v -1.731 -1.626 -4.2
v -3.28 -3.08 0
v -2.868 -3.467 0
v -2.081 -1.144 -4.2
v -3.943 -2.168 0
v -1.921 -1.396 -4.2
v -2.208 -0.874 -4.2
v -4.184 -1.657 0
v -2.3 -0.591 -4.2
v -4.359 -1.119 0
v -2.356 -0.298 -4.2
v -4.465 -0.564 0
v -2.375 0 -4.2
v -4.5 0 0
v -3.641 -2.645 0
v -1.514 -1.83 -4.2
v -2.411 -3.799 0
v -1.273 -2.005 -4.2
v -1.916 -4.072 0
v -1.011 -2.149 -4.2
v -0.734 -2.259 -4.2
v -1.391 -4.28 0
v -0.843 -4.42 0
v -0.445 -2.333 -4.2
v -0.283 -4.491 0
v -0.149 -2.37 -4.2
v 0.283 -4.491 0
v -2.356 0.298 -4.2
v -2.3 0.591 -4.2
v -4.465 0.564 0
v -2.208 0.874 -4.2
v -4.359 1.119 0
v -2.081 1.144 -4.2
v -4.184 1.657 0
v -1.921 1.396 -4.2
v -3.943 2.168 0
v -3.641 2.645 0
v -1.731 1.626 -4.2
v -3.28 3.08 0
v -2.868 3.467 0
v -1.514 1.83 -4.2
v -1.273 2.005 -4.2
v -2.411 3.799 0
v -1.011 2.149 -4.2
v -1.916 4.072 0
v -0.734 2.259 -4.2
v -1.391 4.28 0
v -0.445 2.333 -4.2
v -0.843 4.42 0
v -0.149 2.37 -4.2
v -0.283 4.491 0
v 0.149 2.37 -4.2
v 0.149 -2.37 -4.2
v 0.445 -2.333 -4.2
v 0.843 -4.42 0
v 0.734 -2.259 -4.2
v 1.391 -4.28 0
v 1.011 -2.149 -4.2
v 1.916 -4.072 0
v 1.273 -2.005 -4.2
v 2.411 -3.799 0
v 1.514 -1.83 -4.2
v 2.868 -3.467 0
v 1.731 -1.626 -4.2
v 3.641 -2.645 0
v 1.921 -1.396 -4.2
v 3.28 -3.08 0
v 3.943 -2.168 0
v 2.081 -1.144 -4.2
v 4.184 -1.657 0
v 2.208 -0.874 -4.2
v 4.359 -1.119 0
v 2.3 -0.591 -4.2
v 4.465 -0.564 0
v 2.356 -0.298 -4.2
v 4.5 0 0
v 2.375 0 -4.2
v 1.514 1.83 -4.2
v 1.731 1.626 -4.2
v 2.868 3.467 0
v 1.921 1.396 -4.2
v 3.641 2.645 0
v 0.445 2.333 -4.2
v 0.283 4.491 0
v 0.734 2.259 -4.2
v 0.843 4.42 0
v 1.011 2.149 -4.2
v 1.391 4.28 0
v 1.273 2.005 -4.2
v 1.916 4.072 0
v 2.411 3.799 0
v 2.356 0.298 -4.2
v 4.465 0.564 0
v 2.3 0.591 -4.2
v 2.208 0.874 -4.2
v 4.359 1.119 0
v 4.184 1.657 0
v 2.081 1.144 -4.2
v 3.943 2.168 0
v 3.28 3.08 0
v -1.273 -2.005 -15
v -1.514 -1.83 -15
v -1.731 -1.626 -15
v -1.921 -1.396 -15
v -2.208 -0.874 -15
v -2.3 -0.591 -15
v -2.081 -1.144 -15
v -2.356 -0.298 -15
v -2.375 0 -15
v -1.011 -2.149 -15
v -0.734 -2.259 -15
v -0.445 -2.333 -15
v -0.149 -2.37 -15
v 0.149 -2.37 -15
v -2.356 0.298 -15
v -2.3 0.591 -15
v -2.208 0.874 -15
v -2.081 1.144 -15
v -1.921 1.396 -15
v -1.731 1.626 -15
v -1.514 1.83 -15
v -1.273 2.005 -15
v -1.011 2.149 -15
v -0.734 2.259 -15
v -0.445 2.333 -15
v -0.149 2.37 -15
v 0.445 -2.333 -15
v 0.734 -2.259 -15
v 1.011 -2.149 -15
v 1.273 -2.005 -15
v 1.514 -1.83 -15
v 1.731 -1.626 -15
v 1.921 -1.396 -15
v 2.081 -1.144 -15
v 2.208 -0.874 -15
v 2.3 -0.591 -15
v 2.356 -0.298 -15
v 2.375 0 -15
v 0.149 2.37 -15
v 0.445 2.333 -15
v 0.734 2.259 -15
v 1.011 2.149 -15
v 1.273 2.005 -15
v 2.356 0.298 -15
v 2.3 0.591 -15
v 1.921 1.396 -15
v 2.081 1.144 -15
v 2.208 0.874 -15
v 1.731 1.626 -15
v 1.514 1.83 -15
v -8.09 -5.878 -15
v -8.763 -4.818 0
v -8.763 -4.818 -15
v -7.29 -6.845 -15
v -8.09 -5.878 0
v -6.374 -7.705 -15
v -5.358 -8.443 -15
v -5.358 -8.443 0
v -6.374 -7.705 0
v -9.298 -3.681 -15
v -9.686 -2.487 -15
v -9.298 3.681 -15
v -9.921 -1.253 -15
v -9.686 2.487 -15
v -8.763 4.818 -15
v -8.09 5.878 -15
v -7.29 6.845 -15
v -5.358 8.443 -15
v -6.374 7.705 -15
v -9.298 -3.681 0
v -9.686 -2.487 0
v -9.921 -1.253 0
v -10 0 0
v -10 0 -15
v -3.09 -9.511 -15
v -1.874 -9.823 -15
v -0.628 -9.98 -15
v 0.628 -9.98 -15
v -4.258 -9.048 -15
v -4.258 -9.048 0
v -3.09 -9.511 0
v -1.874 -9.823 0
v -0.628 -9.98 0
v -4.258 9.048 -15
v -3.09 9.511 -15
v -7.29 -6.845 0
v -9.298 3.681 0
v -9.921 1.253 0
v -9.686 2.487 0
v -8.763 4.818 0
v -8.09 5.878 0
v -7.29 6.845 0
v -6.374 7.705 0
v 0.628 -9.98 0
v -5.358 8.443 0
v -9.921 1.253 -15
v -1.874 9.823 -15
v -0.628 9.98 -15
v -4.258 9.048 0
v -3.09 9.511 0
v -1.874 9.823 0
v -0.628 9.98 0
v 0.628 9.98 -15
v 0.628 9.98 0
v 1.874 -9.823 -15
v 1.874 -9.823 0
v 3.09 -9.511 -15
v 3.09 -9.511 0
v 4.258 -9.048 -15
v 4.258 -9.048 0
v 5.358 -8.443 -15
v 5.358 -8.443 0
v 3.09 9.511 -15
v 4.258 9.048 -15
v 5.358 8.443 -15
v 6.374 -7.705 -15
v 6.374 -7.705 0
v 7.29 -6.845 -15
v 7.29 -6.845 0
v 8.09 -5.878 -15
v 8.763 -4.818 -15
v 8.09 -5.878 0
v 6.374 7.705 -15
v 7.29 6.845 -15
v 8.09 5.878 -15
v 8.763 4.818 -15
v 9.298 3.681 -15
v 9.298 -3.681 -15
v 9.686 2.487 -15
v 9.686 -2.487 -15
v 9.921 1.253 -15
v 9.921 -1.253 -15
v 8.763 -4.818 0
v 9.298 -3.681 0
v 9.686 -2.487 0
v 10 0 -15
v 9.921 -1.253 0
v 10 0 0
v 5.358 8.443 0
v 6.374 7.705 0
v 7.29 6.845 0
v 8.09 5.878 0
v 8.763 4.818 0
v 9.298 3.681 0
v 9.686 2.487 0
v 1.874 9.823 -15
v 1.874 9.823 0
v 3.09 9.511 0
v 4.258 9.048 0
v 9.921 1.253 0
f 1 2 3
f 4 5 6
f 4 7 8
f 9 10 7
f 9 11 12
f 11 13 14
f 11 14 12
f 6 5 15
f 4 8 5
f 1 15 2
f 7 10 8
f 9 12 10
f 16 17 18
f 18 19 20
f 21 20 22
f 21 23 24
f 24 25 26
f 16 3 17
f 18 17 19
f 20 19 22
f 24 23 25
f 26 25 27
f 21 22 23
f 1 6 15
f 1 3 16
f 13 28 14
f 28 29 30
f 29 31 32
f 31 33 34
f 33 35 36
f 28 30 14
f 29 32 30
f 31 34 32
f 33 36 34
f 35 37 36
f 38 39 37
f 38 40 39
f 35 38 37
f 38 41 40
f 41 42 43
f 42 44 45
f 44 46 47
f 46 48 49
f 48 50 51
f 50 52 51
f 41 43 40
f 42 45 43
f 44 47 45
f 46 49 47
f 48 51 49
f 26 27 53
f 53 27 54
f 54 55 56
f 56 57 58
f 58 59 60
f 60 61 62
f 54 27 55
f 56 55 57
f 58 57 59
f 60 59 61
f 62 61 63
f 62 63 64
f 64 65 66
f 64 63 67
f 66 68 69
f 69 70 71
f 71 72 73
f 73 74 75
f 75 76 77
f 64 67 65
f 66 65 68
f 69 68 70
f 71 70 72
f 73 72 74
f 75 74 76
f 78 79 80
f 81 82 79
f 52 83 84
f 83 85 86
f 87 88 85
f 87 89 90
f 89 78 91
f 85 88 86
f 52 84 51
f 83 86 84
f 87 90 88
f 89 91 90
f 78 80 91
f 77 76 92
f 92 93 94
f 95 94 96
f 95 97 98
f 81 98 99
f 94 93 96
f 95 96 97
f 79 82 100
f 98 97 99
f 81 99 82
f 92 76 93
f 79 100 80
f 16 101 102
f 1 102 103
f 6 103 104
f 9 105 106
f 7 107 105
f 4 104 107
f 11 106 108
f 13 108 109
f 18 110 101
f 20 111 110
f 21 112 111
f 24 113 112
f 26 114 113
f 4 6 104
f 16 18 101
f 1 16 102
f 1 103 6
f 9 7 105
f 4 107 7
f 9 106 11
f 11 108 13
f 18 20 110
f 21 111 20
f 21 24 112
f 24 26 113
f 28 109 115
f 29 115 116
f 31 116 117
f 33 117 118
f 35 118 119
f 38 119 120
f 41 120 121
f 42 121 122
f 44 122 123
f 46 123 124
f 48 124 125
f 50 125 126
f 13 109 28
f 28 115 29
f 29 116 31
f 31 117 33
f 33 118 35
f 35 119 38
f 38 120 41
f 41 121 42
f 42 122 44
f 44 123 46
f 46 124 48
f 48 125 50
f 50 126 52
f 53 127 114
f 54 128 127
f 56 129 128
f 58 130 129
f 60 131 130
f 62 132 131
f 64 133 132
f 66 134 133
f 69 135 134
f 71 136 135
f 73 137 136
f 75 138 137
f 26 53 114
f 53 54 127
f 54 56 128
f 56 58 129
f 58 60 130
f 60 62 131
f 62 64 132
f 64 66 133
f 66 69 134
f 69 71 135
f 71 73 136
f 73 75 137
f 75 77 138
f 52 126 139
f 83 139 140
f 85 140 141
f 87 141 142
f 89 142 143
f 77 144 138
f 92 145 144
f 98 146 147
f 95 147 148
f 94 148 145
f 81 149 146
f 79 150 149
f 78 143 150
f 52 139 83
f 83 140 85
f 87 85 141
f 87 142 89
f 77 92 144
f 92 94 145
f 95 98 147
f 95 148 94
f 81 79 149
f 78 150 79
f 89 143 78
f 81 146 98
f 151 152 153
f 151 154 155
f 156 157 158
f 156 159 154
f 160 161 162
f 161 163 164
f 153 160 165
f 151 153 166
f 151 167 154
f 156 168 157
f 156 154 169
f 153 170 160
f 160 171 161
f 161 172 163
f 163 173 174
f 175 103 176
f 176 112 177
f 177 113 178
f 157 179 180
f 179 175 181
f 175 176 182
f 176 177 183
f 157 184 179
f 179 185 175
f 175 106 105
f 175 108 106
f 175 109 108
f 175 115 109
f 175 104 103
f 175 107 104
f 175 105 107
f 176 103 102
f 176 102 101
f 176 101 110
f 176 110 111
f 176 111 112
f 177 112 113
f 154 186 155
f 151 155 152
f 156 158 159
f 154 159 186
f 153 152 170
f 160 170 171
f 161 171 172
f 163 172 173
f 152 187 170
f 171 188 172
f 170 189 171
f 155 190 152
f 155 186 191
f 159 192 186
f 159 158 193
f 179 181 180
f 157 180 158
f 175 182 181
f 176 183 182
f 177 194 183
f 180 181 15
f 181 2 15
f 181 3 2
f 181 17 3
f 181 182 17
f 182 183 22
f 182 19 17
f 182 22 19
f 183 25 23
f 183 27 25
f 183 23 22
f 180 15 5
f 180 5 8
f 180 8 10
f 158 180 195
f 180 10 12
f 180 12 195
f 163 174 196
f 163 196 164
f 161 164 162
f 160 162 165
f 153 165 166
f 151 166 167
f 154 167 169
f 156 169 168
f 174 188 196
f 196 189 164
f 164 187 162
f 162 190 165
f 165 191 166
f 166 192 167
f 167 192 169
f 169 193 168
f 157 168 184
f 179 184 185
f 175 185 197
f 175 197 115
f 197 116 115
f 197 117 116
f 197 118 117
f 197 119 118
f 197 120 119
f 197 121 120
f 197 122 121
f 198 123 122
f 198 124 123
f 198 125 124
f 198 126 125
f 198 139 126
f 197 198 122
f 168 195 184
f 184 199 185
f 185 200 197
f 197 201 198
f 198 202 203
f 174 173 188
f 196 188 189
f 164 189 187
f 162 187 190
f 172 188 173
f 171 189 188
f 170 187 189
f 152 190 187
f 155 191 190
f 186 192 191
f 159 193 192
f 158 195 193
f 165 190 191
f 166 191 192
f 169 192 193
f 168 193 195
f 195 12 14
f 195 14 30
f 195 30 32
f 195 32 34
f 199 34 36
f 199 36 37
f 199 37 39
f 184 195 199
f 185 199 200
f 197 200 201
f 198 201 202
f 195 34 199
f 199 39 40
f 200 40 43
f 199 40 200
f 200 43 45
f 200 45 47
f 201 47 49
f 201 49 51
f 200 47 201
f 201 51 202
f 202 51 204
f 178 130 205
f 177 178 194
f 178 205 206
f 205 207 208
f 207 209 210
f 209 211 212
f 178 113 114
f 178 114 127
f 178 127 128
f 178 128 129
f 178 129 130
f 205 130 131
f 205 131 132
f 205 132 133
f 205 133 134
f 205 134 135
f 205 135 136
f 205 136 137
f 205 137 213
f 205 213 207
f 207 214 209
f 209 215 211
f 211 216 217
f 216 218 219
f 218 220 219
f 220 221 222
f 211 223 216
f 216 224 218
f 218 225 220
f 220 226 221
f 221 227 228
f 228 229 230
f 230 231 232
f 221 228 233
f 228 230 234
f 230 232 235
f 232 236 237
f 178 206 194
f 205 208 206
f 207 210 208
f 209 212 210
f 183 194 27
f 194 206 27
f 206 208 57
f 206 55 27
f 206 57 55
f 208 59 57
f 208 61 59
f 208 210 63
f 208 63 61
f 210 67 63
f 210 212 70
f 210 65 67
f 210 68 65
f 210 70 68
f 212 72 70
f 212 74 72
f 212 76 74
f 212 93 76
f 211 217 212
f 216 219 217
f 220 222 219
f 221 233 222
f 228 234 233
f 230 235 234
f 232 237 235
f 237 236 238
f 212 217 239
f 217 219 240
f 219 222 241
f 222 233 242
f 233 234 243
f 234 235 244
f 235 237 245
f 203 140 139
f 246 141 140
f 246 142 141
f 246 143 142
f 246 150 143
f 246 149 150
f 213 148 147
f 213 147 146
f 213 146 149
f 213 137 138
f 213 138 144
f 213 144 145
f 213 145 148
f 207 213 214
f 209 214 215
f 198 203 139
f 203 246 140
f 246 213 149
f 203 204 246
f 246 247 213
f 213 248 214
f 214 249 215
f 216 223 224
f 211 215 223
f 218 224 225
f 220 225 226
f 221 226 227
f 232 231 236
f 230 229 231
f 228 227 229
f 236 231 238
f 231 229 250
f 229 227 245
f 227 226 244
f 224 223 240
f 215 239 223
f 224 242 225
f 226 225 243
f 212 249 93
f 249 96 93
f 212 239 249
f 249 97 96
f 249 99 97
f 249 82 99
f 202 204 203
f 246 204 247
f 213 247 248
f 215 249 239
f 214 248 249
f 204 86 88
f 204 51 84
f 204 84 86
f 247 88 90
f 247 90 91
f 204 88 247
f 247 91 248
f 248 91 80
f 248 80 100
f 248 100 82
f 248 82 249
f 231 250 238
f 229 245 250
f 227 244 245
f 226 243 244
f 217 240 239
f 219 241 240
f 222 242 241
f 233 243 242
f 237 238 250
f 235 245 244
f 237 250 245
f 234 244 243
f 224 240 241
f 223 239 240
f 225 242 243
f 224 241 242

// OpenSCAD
$fn = 50;

difference() {
	union() {
		translate(v = [0, 0, -15.0]) {
			cylinder(h = 15, r = 10.0);
		}
	}
	union() {
		translate(v = [0, 0, 0]) {
			rotate(a = [0, 0, 0]) {
				difference() {
					union() {
						translate(v = [0, 0, -18.0]) {
							cylinder(h = 18, r = 2.25);
						}
						translate(v = [0, 0, -4.2]) {
							cylinder(h = 4.2, r1 = 2.375, r2 = 4.5);
						}
						translate(v = [0, 0, -18.0]) {
							cylinder(h = 18, r = 2.375);
						}
						translate(v = [0, 0, -18.0]) {
							cylinder(h = 18, r = 2.25);
						}
					}
					union();
				}
			}
		}
	}
}
